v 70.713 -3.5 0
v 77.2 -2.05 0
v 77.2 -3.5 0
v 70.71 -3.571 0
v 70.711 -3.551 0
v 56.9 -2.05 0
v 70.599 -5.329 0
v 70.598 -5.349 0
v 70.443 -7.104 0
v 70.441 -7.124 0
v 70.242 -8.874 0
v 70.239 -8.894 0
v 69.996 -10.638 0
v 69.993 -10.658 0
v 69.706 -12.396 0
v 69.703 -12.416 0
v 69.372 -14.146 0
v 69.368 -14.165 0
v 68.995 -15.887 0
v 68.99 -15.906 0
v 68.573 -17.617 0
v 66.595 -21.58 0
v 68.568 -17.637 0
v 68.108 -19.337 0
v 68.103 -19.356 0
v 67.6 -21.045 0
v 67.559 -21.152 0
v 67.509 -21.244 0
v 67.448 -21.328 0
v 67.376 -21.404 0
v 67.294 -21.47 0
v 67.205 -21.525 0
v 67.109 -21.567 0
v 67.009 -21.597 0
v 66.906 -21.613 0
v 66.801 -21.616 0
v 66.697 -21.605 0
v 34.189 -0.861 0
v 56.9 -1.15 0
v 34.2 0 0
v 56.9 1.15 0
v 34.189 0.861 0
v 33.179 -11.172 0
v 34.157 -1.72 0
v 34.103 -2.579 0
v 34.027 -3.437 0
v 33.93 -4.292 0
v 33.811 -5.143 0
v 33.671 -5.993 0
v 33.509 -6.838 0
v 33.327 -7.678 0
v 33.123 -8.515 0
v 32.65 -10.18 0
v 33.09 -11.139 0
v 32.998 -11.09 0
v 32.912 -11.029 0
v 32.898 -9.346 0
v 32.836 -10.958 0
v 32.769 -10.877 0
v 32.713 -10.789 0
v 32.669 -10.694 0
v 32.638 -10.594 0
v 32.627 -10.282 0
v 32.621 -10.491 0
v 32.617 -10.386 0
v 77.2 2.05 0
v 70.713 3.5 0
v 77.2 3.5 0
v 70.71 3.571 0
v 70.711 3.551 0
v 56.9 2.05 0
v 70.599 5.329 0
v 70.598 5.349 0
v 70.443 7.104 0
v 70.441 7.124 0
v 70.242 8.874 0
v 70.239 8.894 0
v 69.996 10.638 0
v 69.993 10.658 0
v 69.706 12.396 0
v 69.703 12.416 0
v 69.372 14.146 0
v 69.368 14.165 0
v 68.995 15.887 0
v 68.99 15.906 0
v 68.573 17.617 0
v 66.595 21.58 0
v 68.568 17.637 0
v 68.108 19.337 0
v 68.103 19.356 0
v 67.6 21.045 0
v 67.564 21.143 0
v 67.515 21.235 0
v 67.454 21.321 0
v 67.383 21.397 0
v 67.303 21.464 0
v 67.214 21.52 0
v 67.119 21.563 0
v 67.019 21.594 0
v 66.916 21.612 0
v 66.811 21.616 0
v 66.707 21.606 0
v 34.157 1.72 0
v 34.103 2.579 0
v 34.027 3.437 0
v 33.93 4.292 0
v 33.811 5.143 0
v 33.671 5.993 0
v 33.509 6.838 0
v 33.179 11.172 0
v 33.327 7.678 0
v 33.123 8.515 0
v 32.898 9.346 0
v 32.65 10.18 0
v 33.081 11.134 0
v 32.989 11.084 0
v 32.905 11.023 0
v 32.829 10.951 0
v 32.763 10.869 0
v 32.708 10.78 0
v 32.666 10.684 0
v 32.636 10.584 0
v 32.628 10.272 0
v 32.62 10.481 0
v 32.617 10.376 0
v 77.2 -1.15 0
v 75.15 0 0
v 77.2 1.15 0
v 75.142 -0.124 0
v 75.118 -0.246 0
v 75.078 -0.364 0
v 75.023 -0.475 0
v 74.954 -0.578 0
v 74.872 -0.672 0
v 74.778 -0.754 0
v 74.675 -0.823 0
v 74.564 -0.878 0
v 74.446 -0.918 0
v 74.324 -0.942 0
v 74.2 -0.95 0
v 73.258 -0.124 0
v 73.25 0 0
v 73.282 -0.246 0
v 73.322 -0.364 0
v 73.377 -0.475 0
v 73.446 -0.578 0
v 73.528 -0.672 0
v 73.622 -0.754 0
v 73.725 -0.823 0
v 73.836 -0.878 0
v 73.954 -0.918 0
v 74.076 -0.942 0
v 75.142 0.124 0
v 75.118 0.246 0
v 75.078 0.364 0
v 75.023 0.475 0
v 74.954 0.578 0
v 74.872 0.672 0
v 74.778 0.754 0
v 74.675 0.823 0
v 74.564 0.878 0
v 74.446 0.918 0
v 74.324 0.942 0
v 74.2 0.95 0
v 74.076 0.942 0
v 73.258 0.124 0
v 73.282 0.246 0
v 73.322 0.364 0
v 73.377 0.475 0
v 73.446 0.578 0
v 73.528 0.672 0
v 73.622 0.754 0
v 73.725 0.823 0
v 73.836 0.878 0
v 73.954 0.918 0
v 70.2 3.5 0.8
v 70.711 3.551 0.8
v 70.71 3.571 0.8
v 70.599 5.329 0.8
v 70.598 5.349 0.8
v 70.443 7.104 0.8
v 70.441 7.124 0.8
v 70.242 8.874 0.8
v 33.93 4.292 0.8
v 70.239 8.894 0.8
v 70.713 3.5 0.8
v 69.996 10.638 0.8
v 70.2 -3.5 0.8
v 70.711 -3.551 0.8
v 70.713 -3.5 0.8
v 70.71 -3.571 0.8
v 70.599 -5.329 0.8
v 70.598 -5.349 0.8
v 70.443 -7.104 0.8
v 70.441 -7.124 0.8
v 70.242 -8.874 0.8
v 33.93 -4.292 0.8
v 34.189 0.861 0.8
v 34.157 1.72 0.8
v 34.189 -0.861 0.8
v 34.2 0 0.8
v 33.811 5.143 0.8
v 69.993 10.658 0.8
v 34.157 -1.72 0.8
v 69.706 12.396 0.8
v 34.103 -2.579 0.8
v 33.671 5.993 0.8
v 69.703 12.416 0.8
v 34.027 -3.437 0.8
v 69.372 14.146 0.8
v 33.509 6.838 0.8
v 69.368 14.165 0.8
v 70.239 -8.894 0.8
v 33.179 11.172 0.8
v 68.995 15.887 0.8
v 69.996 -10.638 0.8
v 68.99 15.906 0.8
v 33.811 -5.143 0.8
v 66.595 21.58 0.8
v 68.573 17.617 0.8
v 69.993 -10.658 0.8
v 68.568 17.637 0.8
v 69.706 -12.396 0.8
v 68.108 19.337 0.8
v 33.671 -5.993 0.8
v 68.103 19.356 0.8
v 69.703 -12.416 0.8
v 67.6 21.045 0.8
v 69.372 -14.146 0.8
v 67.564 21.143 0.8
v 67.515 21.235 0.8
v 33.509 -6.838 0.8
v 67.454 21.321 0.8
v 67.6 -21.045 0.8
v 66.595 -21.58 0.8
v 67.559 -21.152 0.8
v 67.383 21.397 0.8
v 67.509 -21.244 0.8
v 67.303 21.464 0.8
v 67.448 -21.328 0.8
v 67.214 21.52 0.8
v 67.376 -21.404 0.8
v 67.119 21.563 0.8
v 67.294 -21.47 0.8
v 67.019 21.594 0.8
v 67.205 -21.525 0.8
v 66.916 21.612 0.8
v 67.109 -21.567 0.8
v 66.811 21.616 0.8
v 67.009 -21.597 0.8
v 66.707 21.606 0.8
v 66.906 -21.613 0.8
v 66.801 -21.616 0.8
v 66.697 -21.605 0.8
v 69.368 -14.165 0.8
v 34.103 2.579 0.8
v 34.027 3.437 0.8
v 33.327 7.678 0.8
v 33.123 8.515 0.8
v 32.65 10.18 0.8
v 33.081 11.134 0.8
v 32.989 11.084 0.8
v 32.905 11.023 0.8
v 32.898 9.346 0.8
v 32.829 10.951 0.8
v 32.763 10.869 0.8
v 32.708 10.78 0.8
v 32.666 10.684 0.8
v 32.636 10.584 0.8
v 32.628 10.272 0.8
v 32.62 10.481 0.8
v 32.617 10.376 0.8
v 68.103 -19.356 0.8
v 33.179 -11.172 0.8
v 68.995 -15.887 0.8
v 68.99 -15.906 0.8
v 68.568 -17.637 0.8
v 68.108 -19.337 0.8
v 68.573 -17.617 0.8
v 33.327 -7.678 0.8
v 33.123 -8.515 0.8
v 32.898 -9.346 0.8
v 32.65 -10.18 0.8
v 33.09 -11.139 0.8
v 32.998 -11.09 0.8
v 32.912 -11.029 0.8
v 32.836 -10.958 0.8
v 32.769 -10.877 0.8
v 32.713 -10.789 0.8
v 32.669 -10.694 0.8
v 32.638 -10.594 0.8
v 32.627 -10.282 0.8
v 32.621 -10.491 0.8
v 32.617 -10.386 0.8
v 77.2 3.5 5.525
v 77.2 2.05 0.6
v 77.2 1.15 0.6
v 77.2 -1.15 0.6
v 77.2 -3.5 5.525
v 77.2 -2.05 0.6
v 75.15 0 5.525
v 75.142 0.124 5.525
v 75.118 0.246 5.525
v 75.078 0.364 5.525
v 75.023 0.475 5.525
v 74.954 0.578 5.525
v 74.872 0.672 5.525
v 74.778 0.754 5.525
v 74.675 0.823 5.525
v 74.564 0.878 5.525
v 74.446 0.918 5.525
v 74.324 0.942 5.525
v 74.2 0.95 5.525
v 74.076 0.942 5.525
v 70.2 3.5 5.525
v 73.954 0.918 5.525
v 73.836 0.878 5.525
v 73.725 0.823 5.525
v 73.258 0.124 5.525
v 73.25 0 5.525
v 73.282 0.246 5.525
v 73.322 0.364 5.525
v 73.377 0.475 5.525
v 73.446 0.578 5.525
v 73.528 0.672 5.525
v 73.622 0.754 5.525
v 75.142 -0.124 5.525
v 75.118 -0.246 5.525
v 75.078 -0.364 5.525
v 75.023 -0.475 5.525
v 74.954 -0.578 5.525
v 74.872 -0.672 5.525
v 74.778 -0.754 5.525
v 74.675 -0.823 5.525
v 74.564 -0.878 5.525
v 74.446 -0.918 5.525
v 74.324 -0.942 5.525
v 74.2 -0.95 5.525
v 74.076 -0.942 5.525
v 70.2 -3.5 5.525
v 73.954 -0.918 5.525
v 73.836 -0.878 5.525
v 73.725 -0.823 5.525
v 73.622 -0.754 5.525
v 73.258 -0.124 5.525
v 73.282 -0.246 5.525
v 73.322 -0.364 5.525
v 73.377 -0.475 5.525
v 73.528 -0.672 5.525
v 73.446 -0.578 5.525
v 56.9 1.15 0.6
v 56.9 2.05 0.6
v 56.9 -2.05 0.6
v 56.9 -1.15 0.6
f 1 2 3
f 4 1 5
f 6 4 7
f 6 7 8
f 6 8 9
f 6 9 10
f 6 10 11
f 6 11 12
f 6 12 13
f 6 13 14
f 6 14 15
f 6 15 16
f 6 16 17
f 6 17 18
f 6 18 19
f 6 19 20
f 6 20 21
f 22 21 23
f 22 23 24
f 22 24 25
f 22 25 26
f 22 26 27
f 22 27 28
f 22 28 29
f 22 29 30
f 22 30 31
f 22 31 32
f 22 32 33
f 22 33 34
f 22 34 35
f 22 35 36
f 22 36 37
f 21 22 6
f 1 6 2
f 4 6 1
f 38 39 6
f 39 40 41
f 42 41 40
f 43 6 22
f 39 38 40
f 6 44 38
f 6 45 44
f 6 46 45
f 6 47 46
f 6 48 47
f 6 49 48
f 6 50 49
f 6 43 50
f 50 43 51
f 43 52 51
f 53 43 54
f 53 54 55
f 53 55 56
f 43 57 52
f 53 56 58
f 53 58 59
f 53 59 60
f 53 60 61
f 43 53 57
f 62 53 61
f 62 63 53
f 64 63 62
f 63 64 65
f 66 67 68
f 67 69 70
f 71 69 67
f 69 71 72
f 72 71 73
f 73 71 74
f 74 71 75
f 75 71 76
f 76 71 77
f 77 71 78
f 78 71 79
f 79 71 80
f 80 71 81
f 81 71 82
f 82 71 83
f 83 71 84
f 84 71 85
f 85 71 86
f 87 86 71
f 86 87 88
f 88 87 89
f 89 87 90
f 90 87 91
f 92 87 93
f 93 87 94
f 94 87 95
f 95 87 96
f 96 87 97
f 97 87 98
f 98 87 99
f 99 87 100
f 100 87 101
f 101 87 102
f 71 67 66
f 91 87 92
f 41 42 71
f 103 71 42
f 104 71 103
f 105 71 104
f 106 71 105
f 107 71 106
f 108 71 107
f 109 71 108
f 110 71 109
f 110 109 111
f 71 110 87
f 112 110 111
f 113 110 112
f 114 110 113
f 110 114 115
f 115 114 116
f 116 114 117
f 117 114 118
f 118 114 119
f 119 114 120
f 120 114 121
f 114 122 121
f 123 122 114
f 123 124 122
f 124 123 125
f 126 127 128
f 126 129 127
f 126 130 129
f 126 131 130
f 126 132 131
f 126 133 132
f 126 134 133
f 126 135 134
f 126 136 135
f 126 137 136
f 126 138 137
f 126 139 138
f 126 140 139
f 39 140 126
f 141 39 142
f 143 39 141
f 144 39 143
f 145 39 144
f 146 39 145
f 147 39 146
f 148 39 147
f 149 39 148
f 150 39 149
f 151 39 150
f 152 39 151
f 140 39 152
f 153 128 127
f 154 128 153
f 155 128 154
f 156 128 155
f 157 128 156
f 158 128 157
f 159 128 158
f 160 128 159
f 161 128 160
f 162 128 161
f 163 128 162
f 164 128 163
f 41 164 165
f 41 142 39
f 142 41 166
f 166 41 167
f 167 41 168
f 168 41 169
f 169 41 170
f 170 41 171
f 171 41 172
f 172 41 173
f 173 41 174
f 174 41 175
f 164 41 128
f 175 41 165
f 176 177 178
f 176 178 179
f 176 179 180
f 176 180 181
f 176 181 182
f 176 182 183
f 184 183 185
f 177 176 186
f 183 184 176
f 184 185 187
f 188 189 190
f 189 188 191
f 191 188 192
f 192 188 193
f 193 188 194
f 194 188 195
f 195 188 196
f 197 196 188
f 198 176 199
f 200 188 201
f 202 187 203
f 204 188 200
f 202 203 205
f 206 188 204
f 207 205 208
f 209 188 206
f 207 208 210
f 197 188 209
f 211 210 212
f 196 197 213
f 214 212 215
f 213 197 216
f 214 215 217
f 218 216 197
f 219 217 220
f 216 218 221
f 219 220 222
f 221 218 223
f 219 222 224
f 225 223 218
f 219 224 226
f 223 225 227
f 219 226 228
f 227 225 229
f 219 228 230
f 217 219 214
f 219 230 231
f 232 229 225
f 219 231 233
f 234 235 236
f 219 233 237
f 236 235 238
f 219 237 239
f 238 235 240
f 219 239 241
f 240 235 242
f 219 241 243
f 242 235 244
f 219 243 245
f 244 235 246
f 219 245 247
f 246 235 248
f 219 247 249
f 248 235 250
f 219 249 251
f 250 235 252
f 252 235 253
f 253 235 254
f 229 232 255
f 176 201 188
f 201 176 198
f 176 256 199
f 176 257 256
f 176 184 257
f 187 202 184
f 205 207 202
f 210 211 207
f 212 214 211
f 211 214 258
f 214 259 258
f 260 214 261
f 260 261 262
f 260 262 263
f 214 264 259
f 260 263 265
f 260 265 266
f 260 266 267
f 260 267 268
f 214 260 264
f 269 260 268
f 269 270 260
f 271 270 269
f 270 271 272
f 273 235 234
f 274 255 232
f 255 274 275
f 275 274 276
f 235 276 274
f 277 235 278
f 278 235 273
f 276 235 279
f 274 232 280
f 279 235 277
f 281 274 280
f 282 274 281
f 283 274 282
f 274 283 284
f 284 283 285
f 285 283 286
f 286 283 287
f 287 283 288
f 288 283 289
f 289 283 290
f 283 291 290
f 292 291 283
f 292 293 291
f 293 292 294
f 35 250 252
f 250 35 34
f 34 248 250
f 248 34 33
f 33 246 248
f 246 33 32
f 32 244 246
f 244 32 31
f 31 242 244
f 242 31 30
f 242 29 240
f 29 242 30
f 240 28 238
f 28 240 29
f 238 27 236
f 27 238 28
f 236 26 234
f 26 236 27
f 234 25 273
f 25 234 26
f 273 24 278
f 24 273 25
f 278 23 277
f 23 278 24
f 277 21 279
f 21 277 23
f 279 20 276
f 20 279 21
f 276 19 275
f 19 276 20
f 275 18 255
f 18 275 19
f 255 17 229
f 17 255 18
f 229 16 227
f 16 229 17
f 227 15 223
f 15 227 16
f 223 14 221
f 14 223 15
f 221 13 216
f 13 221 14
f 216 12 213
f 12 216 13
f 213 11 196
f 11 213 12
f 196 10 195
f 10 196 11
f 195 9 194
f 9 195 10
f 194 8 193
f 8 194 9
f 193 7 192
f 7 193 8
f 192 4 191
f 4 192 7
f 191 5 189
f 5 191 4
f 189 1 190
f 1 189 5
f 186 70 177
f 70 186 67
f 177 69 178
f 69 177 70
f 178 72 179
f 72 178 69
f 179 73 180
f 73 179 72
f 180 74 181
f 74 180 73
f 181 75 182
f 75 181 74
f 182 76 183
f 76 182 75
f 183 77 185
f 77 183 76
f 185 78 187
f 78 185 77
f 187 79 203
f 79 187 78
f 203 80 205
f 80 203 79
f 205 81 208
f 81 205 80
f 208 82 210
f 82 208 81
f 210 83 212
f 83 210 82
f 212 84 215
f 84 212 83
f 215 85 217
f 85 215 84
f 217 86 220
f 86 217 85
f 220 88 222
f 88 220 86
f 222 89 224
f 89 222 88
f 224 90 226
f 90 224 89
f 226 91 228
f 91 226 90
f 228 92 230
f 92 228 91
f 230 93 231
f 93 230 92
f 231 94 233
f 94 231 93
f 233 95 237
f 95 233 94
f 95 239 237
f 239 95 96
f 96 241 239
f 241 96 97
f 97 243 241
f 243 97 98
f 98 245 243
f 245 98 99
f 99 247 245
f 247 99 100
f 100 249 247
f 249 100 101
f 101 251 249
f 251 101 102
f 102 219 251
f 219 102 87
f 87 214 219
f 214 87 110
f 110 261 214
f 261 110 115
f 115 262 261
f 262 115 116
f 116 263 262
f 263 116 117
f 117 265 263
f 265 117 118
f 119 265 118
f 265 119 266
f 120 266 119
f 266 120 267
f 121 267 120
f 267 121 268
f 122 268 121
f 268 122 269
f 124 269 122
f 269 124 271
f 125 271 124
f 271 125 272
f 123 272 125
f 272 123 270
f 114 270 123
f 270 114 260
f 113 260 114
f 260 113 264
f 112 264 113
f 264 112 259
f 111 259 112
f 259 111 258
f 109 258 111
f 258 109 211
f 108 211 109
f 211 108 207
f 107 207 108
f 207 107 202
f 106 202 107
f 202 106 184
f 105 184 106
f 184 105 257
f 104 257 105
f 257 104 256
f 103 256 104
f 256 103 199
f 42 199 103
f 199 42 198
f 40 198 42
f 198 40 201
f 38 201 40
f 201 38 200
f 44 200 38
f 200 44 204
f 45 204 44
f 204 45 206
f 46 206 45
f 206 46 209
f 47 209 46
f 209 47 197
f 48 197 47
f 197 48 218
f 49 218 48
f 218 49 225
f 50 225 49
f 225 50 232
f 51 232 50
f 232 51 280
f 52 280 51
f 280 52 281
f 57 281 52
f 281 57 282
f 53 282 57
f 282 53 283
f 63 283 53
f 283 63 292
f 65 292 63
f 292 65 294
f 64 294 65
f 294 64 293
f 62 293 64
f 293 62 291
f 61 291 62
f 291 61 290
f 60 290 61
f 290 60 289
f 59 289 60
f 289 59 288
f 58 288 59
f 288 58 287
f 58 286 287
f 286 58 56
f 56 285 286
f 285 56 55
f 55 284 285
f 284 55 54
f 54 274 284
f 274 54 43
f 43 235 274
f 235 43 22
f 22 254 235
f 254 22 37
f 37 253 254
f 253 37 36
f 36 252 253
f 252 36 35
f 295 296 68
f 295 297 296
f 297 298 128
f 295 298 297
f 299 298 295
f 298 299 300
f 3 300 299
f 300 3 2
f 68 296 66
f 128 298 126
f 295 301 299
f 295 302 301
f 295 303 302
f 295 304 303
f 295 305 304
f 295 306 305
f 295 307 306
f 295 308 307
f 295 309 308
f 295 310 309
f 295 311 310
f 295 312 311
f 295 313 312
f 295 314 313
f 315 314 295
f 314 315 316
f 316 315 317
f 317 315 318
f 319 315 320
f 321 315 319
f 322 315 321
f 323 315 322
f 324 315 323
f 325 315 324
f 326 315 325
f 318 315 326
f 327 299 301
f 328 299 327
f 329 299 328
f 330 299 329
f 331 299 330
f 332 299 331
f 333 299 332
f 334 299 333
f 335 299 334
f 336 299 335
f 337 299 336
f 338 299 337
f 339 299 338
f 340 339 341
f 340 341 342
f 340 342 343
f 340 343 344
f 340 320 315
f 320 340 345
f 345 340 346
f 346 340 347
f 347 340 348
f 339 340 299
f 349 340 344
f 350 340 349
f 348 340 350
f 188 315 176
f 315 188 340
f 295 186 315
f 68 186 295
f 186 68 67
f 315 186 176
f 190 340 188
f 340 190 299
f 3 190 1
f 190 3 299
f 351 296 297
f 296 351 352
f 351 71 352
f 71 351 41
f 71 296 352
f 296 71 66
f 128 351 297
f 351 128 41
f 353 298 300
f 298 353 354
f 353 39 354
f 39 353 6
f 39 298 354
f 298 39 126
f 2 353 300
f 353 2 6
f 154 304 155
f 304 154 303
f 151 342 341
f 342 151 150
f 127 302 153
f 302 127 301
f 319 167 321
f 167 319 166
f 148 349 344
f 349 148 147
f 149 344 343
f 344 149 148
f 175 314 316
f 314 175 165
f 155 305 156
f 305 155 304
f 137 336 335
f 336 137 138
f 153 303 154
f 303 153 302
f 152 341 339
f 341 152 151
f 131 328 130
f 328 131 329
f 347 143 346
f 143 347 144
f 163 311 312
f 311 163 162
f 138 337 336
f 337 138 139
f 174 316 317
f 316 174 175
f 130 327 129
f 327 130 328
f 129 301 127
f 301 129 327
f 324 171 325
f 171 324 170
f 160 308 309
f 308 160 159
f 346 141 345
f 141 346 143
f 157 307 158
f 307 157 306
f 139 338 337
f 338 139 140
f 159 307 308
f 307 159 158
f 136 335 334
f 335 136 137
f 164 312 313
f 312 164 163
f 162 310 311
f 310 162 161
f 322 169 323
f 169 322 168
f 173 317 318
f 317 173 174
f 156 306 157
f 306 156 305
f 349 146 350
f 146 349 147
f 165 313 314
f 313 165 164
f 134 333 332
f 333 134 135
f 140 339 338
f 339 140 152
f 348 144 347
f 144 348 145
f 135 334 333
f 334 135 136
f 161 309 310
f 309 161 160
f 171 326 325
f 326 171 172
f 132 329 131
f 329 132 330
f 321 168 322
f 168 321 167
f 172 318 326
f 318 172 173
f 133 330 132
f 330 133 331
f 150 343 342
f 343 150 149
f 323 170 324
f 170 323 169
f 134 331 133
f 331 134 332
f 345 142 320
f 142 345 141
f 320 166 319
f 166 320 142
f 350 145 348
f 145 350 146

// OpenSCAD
// file: parameters.scad
// =============================================================================
// Gen-BQ — nightly 2026-10-07 (physics_scorer, honest magpylib watts)
// Smooth-torque 8-pole / 9-coil line (winding factor 0.945, much lower cogging than 6-coil) with tonight's gap levers: flush 5.00 mm through-pocket seat, 0.8 mm bobbin lip (wider 35–70 mm sectors) and a ±8 mm Ø5 map at R44/52/60, on the Gen-BN Ø138 × 4.76 mm steel. Improves Gen-BN 4.166 W but 9 coils still lose to 6 coils under the wire budget.
// Clocking 0 deg (magnets N facing S) + D-flat keyed bore + index notch + flip-symmetric hole map.
// Windable 2-piece bobbin; turns = physics_scorer turns_fit; copper only between flanges.
// Steel back-iron: 2× Ø138 × 4.76 mm (3/16") mild-steel discs (steel_backiron_disc.dxf); magnets sit ON the steel
// (through-pockets) -> score with --back-iron.
// =============================================================================
topology            = "dual_rotor";

// --- Wire / winding (physics_scorer winding-fit) -------------------------------
wire_awg            = 26;
wire_od             = 0.45;     // insulated OD mm (bare 0.405)
fill_realistic      = 0.65;     // insulated-wire area / window (DENSE layered wind with a jig; scorer cap 0.65)
turns               = 486;       // = physics_scorer turns_fit (do NOT raise)
coil_former_type    = "bobbin";
coil_core_inset     = 12.60;     // radial copper build: hub = copper boundary inset by this
wind_build_axial    = 0.0;      // nothing proud of the flanges
wind_build_radial   = 0.0;

// --- Bobbin (base + lid) ---------------------------------------------------------
coil_id_r           = 35.00;    // copper boundary sector
coil_od_r           = 70.00;
span_deg            = 34.6;    // = pitch - 2*asin((wall+0.85)/coil_id_r) -> >=1.2 mm stator web
former_web          = 9.45;     // copper height between flanges (TALL copper: steel keeps Bz up)
flange_t            = 0.80;     // >= 0.8 mm FDM wall rule (tall winds push on the flanges)
wall                = 0.80;     // flange lip beyond copper
former_bare_h       = former_web + 2 * flange_t;
coil_envelope_h     = former_bare_h + 2 * wind_build_axial;
tab_w               = 7.0;
tab_len             = 7.0;
tab_h               = former_bare_h / 2;
pin_d               = 1.9;      // 1.75 mm filament locating pin
coil_mount_r        = coil_od_r + 0.2 + 4.0;
lead_y              = 1.6;
lead_slot_w         = 0.9;
lead_groove_d       = 0.6;

// --- Gap -------------------------------------------------------------------------
run_clear           = 0.50;     // rotor face -> flange
gap_spacer_h        = run_clear + wind_build_axial;
m2m                 = coil_envelope_h + 2 * run_clear;   // rotor face to rotor face (= gap_sleeve length)

// --- Stator ----------------------------------------------------------------------
coil_stations       = 9;
bay_clear           = 0.25;
stator_thick        = former_bare_h;                        // bobbins flush both faces
stator_od           = 160.0;
shaft_clear_stator  = 14.0;     // stator is static; gap sleeve OD 12 spins inside

// --- Rotor(s) --------------------------------------------------------------------
magnet_Br           = 1.43;     // N52
magnet_d_large      = 20.0;
magnet_h_large      = 5.0;      // one O20x5 per pocket
magnet_h_small      = 5.0;      // one O5x5 per pocket
halbach_magnetisation = "diametric"; // O5x5 assist magnets MUST be DIAMETRICALLY magnetised (tangential)
rotor_b_same_axis   = true;     // same-index magnets share one axis: N faces S across the gap
large_pocket_d      = 20.3;
small_pocket_d      = 5.3;
pocket_h            = 5.00;     // THROUGH the carrier: magnet back face sits on the steel disc (FLUSH seat: carrier = magnet height, magnet face level with the rotor face)
large_n             = 8;
R_large             = 52.0;
R_small_inner       = 44.0;
R_small_mid         = 52.0;
R_small_outer       = 60.0;
small_r_list        = [R_small_inner, R_small_mid, R_small_outer];   // O5 pockets between poles
carrier_od          = 138.0;
carrier_thick       = pocket_h;
hub_h               = 12.0;     // > steel_t + insert: radial set-screw clears the steel
hub_od              = 24.0;     // slim hub so the M4 brace rods fit at R~18 inside the coil ring
hub_insert_d        = 4.0;      // M3 heat-set insert, radial, bears on the D-flat
rotor_b_offset_deg  = 0.0;      // CLOCKING: magnets directly opposite
shaft_key           = "dflat";
dflat_depth         = 0.5;      // 8 mm shaft with 0.5 mm flat (7.5 across flat)
index_notch_d       = 3.0;

// --- Steel back-iron (buyable laser-cut) -------------------------------------------
steel_t             = 4.76;      // mild steel thickness (image method ignores it; sized from steel_flux.py so the return path stays well below saturation)
steel_center_hole   = 26.0;     // slips over the rotor hub (OD 24)
steel_od            = carrier_od;   // steel disc OD = rotor carrier OD

// --- Modular MAX interface ----------------------------------------------------------
shaft_bore          = 8.35;
dflat_x             = 4.0 - dflat_depth + (shaft_bore - 8.0) / 2;
bearing_d           = 21.85;
bearing_h           = 7.2;
m3_clear            = 3.5;
bolt_r_inner        = 30.0;     // M3 steel-disc clamp bolts (inside the magnet ring)
bolt_n_inner        = 4;
bolt_inner_angles   = [0, 90, 180, 270];
bolt_r_outer        = 65.0;     // M3 steel-disc clamp bolts (outside the magnet ring)
bolt_outer_angles   = [45, 135, 225, 315];
flange_bolt_r       = 75.0;     // frame rods: OUTSIDE the rotor OD (rotors spin inside them)
flange_bolt_n       = 9;
flange_bolt_offset  = 20.00;    // between coil stations -> never cuts a lead groove/tab
brace_r             = 18.0;
brace_d             = 4.3;      // temporary M4 jack rods (assembly only)
brace_n             = 4;
brace_angles        = [45, 135, 225, 315];          // flip-symmetric

spacer_pad_od       = 14.0;
spacer_pad_id       = m3_clear;
endbell_od          = 160.0;
endbell_thick       = 8.0;
endbell_shaft_clear = 10.0;
collar_h            = 10.0;
standoff_od         = 9.0;
frame_standoff_h    = run_clear + carrier_thick + hub_h + collar_h + 2.0;
sleeve_od           = 12.0;
plate_max_mm        = 410;

$fn = 64;
// main file
// Gen-BQ — bobbin LID (top flange + locating tab). Print x9, flange face DOWN on the bed.
// CA-glue onto the hub top BEFORE winding. Tab = lap joint into the stator tab pocket; 1.75 mm filament
// pin through pin hole + stator ledge, trim flush. Lead slots carry both leads flush.
include <parameters.scad>;
$fn = 48;
module sector_2d(r_in, r_out, ang) {
    polygon([
        for (a = [-ang/2 : ang/24 : ang/2]) [r_in*cos(a), r_in*sin(a)],
        for (a = [ang/2 : -ang/24 : -ang/2]) [r_out*cos(a), r_out*sin(a)]
    ]);
}
module footprint_2d() { offset(r=wall) sector_2d(coil_id_r, coil_od_r, span_deg); }
module hub_2d()       { offset(delta=-coil_core_inset) sector_2d(coil_id_r, coil_od_r, span_deg); }

difference() {
    union() {
        linear_extrude(flange_t) footprint_2d();
        translate([coil_od_r + 0.2, -tab_w/2, 0]) cube([tab_len, tab_w, tab_h]);
    }
    translate([coil_mount_r, 0, -0.1]) cylinder(d=pin_d, h=tab_h + 1);
    for (y = [lead_y, -lead_y])
        translate([coil_od_r - coil_core_inset - 0.5, y - lead_slot_w/2, -0.1])
            cube([coil_core_inset + tab_len + 2, lead_slot_w, lead_groove_d + 0.1]);
}
